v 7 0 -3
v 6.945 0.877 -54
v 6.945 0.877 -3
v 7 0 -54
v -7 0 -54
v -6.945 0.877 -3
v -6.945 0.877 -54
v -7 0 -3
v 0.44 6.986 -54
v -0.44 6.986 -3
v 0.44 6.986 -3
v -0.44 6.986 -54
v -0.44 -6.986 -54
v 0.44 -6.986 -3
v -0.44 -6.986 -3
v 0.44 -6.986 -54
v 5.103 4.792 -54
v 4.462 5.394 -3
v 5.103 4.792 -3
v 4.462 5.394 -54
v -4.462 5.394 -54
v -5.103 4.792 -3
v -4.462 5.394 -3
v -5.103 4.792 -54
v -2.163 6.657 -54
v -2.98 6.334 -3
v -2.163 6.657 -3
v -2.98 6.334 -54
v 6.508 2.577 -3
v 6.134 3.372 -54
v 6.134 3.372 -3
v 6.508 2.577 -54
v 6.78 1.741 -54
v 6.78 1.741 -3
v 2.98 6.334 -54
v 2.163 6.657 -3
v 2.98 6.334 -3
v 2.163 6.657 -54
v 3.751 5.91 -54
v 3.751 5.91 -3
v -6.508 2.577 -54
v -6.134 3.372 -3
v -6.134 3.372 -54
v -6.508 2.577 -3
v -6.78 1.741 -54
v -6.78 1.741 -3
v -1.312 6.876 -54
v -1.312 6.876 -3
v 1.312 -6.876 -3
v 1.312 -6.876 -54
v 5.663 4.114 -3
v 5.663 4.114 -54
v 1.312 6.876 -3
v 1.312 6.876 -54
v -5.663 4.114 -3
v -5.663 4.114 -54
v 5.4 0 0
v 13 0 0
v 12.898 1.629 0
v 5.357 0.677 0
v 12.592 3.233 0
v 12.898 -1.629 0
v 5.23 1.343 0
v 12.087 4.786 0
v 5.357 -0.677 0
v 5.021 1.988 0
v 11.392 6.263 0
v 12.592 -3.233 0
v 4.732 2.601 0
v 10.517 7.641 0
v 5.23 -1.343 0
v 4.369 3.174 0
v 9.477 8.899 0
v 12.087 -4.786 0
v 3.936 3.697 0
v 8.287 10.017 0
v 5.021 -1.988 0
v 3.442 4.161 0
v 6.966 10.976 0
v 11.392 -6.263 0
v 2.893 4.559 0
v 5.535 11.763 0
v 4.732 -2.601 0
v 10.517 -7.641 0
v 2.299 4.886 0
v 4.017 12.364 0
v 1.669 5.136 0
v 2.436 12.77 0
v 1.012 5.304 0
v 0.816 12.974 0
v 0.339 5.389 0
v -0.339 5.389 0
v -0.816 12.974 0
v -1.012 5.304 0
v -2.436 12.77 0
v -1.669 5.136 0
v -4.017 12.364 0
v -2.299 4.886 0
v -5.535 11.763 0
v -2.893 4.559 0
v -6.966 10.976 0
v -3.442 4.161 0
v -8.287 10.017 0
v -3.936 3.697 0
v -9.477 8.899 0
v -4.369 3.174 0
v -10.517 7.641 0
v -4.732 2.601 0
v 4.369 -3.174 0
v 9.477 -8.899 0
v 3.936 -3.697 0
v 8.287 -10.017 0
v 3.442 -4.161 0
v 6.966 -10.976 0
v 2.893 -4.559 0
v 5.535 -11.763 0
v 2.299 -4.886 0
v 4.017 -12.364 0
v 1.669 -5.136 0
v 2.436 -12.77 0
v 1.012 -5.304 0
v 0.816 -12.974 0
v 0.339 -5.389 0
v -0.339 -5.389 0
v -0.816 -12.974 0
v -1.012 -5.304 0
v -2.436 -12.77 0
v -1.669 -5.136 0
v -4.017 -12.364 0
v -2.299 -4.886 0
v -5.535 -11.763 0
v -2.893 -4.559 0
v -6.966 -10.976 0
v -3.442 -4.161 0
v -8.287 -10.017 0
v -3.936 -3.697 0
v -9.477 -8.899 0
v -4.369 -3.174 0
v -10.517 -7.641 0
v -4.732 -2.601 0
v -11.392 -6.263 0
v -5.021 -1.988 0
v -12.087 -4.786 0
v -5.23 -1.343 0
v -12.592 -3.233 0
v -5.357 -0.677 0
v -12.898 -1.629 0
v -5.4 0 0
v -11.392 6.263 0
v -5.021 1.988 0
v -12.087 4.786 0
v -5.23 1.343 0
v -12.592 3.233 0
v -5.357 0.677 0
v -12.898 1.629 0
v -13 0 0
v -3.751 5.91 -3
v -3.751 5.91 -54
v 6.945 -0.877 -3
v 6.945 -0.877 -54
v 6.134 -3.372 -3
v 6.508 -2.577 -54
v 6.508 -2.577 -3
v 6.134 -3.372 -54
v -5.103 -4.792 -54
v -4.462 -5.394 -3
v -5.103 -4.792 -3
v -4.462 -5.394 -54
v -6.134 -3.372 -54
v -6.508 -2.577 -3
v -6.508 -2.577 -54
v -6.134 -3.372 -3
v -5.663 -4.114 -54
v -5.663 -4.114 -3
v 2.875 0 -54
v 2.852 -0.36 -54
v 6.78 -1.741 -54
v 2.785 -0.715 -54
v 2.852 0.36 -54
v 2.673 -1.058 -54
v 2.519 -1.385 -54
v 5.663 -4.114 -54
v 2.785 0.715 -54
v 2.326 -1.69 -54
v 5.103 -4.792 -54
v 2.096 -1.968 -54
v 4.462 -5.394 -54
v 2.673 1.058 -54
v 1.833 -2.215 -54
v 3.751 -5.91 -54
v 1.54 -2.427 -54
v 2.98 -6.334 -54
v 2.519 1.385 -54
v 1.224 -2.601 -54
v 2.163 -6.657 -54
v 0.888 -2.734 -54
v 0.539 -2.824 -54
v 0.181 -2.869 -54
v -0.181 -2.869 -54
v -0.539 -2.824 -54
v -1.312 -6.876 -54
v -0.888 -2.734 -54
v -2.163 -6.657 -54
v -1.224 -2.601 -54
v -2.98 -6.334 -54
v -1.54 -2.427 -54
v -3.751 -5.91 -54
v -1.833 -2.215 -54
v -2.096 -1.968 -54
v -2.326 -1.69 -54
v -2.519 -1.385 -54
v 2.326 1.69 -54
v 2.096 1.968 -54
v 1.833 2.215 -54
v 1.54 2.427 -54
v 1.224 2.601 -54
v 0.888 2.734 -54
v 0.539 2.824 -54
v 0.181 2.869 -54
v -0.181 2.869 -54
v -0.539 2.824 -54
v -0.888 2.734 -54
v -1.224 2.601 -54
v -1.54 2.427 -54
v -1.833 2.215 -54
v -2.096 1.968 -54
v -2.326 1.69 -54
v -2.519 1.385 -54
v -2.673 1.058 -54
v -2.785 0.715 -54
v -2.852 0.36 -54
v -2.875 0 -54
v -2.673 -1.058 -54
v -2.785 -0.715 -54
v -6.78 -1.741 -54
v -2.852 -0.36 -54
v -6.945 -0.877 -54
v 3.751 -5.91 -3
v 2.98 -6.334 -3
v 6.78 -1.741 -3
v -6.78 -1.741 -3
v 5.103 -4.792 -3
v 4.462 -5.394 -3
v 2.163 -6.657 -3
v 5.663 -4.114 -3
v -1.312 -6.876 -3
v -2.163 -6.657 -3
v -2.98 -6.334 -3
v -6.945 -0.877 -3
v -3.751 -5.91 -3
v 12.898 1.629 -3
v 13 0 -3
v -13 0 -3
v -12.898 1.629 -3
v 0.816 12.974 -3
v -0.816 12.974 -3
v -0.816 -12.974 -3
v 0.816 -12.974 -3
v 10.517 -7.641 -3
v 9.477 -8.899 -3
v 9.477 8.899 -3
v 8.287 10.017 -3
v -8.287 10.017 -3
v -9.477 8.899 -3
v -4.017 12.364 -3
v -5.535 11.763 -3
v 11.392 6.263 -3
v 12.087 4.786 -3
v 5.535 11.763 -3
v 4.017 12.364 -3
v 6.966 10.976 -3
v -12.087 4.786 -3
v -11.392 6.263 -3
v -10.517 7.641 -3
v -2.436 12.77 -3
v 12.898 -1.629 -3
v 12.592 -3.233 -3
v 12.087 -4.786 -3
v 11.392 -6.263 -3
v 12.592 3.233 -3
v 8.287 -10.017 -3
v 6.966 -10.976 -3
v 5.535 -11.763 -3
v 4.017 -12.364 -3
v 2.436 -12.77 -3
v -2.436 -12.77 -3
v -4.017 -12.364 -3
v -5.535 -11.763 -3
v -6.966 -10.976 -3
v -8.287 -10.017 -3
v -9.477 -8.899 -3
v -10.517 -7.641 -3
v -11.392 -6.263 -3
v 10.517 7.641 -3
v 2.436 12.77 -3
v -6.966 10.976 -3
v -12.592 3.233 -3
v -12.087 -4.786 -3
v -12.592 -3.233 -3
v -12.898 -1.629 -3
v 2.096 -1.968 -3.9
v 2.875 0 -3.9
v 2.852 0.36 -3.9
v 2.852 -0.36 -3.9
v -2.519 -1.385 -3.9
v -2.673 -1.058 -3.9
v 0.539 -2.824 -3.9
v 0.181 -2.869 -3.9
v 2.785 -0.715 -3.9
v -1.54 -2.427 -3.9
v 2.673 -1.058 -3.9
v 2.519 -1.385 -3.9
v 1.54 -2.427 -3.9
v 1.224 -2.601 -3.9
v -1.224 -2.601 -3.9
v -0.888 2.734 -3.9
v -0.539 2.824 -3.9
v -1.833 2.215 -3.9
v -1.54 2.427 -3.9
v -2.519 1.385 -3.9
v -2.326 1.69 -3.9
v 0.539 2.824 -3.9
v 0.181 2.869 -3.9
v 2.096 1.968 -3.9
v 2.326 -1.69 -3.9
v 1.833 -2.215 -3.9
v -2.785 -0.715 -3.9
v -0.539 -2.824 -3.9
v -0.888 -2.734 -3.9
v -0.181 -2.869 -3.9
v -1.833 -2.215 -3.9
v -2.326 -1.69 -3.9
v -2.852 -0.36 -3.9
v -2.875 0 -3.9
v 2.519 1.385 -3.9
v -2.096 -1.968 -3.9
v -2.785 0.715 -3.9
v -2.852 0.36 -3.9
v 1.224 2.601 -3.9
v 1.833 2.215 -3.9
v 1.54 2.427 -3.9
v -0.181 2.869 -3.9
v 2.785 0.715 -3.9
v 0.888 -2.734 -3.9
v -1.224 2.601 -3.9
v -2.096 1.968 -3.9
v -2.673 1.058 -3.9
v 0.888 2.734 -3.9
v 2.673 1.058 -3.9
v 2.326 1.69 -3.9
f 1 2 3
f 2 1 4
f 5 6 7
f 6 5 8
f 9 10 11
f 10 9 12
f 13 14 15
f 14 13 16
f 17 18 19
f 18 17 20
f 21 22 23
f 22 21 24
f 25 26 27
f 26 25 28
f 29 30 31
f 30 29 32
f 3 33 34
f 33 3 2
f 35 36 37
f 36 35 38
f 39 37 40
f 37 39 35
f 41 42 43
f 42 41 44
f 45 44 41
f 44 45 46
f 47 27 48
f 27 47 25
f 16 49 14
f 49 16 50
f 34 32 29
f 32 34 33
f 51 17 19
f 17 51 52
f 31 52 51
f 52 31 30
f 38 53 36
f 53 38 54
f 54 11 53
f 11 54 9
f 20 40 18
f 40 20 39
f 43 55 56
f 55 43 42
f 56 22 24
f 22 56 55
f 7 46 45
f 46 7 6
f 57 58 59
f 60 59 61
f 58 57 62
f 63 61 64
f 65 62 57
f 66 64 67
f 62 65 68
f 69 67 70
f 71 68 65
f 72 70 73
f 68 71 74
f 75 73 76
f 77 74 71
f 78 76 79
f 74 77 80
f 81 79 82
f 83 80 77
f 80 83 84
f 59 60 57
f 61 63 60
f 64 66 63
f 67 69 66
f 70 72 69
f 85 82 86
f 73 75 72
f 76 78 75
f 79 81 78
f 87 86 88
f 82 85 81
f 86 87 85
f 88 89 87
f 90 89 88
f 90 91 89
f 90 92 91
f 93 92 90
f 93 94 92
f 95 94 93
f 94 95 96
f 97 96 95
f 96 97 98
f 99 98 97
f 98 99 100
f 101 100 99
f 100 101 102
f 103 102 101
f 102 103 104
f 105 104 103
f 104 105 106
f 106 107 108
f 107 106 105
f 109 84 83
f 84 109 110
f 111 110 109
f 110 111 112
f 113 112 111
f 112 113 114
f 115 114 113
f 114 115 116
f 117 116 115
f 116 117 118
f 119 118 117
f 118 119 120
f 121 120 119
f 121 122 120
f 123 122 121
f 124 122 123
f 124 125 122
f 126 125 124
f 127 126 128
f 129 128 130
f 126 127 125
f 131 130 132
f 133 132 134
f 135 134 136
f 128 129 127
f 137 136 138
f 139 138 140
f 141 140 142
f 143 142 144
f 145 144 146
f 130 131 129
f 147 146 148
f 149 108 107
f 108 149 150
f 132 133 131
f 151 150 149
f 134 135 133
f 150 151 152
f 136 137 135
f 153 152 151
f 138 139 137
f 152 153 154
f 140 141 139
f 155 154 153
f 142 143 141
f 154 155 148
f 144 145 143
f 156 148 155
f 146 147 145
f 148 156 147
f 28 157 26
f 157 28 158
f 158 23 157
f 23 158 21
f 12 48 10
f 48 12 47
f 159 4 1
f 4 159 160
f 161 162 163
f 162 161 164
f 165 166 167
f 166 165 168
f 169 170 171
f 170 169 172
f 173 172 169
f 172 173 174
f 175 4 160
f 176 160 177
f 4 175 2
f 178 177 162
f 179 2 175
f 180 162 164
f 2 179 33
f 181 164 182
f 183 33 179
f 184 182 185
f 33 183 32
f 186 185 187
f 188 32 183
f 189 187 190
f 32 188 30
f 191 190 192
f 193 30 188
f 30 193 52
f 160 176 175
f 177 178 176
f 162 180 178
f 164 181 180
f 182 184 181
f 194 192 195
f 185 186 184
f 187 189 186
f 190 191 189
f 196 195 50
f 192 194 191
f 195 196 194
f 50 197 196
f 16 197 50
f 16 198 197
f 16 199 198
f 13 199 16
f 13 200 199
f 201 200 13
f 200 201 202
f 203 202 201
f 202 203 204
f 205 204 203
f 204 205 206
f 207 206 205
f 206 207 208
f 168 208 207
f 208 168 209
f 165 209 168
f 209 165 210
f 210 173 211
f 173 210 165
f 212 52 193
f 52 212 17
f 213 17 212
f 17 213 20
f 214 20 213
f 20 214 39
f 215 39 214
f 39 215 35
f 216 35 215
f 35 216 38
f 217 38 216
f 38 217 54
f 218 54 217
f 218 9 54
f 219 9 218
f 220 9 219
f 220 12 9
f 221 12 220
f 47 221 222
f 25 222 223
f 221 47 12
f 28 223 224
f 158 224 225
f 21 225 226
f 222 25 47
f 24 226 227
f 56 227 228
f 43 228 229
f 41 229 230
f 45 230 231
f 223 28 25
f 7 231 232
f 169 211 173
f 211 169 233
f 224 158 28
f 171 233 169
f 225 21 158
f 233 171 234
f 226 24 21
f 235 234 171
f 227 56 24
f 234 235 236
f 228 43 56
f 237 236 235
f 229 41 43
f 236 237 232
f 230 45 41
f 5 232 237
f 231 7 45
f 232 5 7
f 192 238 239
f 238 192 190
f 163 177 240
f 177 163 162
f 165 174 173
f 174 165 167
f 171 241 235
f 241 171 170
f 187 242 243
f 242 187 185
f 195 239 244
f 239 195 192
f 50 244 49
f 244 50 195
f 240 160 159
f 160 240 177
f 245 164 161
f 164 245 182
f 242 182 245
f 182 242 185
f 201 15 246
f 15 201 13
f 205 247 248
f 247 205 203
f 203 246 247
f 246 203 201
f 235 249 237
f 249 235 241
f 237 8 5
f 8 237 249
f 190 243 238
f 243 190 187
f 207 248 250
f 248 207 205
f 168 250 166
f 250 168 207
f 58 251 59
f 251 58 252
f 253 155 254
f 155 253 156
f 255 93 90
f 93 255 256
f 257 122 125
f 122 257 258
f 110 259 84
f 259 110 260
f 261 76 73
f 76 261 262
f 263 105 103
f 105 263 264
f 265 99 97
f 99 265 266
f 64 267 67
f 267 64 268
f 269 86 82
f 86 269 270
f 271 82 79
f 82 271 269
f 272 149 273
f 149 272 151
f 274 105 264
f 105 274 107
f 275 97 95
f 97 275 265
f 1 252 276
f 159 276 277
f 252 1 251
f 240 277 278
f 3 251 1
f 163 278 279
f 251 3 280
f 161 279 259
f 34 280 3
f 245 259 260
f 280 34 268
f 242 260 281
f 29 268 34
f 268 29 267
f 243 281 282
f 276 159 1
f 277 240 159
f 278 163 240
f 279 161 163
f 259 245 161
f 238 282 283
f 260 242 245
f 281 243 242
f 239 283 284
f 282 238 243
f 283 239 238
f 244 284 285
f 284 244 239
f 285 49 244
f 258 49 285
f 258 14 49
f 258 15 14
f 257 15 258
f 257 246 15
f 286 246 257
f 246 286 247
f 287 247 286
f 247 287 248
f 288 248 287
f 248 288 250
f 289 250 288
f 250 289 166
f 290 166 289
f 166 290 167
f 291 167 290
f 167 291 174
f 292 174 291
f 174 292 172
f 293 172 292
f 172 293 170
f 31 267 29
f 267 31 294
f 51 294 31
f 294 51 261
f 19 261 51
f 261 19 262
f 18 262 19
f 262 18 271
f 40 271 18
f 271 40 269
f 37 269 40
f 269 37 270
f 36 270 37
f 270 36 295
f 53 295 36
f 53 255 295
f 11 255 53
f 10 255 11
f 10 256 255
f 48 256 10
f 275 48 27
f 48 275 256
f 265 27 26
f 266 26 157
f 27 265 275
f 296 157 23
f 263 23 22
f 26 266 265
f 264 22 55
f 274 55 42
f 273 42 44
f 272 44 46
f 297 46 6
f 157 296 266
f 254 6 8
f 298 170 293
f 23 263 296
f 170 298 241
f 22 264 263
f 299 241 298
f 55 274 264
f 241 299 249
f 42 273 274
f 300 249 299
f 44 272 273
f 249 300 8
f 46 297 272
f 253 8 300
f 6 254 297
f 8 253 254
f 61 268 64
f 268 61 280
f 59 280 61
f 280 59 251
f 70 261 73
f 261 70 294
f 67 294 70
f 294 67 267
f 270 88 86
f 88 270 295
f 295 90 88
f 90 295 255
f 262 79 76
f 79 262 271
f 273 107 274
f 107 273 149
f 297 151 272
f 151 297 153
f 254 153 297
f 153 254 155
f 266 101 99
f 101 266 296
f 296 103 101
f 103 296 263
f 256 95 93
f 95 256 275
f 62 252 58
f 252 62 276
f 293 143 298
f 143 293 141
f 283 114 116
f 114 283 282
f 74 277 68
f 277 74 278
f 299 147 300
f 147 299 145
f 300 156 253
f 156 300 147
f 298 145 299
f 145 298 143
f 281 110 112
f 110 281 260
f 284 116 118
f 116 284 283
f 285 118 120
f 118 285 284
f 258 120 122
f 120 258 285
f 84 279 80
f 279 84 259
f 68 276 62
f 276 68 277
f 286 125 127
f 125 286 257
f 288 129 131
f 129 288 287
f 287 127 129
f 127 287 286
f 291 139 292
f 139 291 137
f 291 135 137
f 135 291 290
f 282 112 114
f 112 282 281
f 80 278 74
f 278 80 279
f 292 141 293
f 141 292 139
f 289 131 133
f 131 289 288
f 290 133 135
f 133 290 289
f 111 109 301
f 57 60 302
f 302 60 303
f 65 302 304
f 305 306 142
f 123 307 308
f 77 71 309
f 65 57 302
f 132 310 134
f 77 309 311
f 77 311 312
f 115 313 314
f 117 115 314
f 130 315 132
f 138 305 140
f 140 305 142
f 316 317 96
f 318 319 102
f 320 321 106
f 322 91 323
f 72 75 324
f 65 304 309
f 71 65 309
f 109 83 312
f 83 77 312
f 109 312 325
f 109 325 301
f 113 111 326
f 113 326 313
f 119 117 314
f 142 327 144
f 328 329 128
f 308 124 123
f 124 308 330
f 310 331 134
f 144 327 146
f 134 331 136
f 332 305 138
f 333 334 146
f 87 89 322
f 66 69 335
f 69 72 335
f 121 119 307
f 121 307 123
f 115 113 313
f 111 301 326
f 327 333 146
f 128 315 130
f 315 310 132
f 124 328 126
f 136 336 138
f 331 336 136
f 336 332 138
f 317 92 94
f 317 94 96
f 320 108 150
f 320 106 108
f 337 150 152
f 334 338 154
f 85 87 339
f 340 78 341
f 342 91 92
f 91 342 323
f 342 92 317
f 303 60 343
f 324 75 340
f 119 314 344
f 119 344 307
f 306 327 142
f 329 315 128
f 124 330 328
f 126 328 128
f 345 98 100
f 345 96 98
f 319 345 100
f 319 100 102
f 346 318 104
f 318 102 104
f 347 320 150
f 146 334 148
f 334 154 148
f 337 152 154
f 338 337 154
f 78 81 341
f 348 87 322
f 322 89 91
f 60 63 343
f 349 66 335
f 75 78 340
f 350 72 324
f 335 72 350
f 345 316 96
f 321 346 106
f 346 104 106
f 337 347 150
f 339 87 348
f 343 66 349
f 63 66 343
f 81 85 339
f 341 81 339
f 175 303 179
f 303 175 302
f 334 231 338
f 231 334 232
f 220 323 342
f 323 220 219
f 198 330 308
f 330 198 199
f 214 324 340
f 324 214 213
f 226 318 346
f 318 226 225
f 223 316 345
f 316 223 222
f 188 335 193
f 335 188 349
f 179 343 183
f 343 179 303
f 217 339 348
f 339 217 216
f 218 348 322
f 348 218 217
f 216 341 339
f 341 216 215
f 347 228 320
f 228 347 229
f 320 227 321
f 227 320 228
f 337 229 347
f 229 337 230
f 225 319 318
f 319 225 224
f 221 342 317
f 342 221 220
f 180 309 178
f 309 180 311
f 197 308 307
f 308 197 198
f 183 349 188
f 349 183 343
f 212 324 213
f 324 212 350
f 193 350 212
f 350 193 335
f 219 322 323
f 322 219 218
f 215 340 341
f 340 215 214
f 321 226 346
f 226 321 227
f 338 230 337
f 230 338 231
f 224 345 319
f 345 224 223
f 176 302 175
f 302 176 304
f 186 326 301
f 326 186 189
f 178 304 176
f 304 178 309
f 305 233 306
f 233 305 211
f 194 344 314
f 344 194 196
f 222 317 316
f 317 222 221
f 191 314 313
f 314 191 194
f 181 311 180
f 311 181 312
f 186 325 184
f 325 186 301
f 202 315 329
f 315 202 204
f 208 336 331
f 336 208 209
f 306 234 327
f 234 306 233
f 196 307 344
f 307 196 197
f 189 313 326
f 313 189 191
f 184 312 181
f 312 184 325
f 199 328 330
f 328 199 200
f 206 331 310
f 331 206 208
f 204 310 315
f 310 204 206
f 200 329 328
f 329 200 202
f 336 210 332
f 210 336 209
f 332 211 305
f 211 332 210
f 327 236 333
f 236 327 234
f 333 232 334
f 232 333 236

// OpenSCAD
$fn = 50;


difference() {
	union() {
		translate(v = [0, 0, -54.0000000000]) {
			cylinder(h = 54, r = 7.0000000000);
		}
		translate(v = [0, 0, -3.0000000000]) {
			cylinder(h = 3, r = 13.0000000000);
		}
	}
	union() {
		translate(v = [0, 0, 0]) {
			rotate(a = [0, 0, 0]) {
				difference() {
					union() {
						#translate(v = [0, 0, -54.0000000000]) {
							cylinder(h = 54, r = 2.6000000000);
						}
						#translate(v = [0, 0, -3.9000000000]) {
							cylinder(h = 3.9000000000, r = 7.0000000000, r1 = 2.8750000000, r2 = 5.4000000000);
						}
						#translate(v = [0, 0, -54.0000000000]) {
							cylinder(h = 54, r = 2.8750000000);
						}
						#translate(v = [0, 0, -54.0000000000]) {
							cylinder(h = 54, r = 2.6000000000);
						}
					}
					union();
				}
			}
		}
	}
}
